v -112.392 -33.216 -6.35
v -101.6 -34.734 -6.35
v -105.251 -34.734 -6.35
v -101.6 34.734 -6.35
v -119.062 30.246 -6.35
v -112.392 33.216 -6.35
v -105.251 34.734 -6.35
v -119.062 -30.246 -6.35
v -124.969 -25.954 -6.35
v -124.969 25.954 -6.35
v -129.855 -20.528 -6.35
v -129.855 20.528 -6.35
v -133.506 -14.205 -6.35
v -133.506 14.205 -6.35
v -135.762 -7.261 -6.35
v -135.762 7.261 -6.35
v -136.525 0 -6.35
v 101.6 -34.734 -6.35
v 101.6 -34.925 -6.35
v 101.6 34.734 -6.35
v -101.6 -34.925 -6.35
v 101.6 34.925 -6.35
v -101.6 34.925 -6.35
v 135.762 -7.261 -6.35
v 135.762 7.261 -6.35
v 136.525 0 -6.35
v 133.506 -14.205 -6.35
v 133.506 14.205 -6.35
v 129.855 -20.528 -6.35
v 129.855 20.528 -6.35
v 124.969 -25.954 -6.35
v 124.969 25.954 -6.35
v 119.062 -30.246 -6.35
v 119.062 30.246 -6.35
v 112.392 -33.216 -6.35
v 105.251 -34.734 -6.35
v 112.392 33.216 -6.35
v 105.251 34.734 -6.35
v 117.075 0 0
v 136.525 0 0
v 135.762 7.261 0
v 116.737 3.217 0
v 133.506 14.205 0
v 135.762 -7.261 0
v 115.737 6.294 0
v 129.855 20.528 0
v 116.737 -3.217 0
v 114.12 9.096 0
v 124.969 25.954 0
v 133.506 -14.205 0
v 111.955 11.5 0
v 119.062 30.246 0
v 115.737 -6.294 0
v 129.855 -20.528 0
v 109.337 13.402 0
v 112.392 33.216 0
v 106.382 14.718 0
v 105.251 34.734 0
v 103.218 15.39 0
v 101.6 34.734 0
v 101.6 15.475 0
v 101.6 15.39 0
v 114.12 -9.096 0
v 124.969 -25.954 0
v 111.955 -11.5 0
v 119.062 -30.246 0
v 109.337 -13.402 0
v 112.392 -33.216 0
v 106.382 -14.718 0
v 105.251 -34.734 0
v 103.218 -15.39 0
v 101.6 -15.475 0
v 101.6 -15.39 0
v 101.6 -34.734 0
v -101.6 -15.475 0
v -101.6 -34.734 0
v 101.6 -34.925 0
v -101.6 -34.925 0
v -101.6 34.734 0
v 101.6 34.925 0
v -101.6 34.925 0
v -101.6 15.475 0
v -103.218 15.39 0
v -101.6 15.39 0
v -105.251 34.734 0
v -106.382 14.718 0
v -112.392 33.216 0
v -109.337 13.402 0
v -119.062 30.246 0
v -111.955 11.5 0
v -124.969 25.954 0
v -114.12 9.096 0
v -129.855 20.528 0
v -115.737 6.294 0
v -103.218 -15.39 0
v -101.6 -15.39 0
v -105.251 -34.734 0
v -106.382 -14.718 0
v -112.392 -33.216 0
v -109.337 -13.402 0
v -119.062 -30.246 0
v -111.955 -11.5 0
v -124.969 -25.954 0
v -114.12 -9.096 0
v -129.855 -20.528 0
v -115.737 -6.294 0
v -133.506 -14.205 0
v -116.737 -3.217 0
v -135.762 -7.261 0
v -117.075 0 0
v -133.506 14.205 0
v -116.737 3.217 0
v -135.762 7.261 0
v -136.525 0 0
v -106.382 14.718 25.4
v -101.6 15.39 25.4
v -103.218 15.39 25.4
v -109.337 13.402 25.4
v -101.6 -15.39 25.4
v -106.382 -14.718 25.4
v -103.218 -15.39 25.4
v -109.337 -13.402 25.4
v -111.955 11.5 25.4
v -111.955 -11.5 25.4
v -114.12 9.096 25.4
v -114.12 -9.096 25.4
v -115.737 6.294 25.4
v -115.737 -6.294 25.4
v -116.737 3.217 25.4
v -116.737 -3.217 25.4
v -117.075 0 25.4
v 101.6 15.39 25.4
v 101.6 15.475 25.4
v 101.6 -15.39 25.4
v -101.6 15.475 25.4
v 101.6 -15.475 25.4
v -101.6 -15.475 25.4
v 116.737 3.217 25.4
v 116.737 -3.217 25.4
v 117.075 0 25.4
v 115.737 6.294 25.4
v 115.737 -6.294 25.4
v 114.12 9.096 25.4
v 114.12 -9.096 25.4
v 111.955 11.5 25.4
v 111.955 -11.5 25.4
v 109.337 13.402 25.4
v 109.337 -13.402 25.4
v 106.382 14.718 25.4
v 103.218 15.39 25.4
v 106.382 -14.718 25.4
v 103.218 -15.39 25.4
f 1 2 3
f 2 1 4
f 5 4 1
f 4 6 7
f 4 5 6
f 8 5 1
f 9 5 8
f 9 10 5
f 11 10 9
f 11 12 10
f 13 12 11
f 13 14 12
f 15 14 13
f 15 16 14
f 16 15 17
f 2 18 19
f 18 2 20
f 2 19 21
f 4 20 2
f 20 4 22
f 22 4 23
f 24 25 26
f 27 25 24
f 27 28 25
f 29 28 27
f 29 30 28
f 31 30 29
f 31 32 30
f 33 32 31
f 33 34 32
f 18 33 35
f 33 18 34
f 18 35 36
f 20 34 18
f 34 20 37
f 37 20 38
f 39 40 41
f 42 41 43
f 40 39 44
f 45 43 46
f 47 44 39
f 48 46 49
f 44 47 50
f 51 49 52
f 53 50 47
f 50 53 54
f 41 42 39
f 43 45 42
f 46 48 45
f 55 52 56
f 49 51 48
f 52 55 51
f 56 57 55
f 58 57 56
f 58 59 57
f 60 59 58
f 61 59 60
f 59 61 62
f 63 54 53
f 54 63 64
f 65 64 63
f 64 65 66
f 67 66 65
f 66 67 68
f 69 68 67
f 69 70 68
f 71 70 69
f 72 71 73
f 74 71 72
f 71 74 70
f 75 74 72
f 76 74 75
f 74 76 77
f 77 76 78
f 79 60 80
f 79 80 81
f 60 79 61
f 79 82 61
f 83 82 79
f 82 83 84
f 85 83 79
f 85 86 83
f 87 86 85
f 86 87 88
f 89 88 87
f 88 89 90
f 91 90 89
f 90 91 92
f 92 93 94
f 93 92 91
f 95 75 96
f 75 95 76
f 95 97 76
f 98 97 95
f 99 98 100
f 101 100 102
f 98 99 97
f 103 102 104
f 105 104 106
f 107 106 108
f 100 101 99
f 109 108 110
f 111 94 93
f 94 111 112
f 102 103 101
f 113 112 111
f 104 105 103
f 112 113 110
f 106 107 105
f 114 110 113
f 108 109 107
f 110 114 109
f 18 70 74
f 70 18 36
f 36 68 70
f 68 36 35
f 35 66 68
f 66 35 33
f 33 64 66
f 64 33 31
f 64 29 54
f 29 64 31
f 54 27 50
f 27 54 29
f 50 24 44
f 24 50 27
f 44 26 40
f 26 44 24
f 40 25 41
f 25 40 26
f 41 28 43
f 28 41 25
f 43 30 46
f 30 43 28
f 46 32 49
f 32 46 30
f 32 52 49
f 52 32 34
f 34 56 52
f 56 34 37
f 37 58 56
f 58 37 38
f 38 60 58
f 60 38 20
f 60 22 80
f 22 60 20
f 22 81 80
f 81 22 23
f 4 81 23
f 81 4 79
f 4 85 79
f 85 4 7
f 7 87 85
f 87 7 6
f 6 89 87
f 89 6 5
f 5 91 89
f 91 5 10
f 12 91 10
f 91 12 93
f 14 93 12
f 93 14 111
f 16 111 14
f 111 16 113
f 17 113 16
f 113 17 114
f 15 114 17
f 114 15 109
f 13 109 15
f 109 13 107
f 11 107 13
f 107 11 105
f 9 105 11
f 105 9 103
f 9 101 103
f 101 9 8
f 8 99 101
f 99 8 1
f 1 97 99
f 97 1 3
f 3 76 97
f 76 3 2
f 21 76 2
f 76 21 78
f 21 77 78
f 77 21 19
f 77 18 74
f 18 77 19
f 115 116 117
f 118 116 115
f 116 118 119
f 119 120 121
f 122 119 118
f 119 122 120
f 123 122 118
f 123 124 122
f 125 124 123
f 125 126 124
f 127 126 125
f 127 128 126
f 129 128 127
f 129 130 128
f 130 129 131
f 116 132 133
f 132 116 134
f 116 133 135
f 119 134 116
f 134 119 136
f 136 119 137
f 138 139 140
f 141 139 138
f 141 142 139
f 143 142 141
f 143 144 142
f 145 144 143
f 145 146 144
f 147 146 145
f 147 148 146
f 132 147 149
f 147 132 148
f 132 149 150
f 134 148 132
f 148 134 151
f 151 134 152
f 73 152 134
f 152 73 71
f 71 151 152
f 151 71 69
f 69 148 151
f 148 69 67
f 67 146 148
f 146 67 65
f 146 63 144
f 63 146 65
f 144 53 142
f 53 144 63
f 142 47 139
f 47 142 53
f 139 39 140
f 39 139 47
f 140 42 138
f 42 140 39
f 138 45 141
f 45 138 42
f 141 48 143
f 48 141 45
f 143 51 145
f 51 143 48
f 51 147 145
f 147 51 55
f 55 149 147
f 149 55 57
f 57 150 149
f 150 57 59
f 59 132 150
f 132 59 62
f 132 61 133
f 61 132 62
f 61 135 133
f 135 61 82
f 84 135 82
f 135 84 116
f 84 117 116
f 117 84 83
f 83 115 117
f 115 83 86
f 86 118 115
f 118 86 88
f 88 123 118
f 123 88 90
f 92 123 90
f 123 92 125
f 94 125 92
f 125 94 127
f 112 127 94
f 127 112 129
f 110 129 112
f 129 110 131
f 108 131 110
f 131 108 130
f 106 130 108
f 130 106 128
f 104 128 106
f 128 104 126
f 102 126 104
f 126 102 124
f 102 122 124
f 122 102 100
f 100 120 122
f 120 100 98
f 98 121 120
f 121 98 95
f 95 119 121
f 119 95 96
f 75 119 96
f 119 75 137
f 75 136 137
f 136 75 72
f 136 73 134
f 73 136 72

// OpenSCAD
union() {
	translate(v = [0, 0, -6.3500000000]) {
		linear_extrude(height = 6.3500000000) {
			union() {
				union() {
					square(center = true, size = [203.2000000000, 69.8500000000]);
					translate(v = [-101.6000000000, 0]) {
						circle(d = 69.8500000000);
					}
				}
				translate(v = [101.6000000000, 0]) {
					circle(d = 69.8500000000);
				}
			}
		}
	}
	linear_extrude(height = 25.4000000000) {
		union() {
			union() {
				square(center = true, size = [203.2000000000, 30.9500000000]);
				translate(v = [-101.6000000000, 0]) {
					circle(d = 30.9500000000);
				}
			}
			translate(v = [101.6000000000, 0]) {
				circle(d = 30.9500000000);
			}
		}
	}
}
